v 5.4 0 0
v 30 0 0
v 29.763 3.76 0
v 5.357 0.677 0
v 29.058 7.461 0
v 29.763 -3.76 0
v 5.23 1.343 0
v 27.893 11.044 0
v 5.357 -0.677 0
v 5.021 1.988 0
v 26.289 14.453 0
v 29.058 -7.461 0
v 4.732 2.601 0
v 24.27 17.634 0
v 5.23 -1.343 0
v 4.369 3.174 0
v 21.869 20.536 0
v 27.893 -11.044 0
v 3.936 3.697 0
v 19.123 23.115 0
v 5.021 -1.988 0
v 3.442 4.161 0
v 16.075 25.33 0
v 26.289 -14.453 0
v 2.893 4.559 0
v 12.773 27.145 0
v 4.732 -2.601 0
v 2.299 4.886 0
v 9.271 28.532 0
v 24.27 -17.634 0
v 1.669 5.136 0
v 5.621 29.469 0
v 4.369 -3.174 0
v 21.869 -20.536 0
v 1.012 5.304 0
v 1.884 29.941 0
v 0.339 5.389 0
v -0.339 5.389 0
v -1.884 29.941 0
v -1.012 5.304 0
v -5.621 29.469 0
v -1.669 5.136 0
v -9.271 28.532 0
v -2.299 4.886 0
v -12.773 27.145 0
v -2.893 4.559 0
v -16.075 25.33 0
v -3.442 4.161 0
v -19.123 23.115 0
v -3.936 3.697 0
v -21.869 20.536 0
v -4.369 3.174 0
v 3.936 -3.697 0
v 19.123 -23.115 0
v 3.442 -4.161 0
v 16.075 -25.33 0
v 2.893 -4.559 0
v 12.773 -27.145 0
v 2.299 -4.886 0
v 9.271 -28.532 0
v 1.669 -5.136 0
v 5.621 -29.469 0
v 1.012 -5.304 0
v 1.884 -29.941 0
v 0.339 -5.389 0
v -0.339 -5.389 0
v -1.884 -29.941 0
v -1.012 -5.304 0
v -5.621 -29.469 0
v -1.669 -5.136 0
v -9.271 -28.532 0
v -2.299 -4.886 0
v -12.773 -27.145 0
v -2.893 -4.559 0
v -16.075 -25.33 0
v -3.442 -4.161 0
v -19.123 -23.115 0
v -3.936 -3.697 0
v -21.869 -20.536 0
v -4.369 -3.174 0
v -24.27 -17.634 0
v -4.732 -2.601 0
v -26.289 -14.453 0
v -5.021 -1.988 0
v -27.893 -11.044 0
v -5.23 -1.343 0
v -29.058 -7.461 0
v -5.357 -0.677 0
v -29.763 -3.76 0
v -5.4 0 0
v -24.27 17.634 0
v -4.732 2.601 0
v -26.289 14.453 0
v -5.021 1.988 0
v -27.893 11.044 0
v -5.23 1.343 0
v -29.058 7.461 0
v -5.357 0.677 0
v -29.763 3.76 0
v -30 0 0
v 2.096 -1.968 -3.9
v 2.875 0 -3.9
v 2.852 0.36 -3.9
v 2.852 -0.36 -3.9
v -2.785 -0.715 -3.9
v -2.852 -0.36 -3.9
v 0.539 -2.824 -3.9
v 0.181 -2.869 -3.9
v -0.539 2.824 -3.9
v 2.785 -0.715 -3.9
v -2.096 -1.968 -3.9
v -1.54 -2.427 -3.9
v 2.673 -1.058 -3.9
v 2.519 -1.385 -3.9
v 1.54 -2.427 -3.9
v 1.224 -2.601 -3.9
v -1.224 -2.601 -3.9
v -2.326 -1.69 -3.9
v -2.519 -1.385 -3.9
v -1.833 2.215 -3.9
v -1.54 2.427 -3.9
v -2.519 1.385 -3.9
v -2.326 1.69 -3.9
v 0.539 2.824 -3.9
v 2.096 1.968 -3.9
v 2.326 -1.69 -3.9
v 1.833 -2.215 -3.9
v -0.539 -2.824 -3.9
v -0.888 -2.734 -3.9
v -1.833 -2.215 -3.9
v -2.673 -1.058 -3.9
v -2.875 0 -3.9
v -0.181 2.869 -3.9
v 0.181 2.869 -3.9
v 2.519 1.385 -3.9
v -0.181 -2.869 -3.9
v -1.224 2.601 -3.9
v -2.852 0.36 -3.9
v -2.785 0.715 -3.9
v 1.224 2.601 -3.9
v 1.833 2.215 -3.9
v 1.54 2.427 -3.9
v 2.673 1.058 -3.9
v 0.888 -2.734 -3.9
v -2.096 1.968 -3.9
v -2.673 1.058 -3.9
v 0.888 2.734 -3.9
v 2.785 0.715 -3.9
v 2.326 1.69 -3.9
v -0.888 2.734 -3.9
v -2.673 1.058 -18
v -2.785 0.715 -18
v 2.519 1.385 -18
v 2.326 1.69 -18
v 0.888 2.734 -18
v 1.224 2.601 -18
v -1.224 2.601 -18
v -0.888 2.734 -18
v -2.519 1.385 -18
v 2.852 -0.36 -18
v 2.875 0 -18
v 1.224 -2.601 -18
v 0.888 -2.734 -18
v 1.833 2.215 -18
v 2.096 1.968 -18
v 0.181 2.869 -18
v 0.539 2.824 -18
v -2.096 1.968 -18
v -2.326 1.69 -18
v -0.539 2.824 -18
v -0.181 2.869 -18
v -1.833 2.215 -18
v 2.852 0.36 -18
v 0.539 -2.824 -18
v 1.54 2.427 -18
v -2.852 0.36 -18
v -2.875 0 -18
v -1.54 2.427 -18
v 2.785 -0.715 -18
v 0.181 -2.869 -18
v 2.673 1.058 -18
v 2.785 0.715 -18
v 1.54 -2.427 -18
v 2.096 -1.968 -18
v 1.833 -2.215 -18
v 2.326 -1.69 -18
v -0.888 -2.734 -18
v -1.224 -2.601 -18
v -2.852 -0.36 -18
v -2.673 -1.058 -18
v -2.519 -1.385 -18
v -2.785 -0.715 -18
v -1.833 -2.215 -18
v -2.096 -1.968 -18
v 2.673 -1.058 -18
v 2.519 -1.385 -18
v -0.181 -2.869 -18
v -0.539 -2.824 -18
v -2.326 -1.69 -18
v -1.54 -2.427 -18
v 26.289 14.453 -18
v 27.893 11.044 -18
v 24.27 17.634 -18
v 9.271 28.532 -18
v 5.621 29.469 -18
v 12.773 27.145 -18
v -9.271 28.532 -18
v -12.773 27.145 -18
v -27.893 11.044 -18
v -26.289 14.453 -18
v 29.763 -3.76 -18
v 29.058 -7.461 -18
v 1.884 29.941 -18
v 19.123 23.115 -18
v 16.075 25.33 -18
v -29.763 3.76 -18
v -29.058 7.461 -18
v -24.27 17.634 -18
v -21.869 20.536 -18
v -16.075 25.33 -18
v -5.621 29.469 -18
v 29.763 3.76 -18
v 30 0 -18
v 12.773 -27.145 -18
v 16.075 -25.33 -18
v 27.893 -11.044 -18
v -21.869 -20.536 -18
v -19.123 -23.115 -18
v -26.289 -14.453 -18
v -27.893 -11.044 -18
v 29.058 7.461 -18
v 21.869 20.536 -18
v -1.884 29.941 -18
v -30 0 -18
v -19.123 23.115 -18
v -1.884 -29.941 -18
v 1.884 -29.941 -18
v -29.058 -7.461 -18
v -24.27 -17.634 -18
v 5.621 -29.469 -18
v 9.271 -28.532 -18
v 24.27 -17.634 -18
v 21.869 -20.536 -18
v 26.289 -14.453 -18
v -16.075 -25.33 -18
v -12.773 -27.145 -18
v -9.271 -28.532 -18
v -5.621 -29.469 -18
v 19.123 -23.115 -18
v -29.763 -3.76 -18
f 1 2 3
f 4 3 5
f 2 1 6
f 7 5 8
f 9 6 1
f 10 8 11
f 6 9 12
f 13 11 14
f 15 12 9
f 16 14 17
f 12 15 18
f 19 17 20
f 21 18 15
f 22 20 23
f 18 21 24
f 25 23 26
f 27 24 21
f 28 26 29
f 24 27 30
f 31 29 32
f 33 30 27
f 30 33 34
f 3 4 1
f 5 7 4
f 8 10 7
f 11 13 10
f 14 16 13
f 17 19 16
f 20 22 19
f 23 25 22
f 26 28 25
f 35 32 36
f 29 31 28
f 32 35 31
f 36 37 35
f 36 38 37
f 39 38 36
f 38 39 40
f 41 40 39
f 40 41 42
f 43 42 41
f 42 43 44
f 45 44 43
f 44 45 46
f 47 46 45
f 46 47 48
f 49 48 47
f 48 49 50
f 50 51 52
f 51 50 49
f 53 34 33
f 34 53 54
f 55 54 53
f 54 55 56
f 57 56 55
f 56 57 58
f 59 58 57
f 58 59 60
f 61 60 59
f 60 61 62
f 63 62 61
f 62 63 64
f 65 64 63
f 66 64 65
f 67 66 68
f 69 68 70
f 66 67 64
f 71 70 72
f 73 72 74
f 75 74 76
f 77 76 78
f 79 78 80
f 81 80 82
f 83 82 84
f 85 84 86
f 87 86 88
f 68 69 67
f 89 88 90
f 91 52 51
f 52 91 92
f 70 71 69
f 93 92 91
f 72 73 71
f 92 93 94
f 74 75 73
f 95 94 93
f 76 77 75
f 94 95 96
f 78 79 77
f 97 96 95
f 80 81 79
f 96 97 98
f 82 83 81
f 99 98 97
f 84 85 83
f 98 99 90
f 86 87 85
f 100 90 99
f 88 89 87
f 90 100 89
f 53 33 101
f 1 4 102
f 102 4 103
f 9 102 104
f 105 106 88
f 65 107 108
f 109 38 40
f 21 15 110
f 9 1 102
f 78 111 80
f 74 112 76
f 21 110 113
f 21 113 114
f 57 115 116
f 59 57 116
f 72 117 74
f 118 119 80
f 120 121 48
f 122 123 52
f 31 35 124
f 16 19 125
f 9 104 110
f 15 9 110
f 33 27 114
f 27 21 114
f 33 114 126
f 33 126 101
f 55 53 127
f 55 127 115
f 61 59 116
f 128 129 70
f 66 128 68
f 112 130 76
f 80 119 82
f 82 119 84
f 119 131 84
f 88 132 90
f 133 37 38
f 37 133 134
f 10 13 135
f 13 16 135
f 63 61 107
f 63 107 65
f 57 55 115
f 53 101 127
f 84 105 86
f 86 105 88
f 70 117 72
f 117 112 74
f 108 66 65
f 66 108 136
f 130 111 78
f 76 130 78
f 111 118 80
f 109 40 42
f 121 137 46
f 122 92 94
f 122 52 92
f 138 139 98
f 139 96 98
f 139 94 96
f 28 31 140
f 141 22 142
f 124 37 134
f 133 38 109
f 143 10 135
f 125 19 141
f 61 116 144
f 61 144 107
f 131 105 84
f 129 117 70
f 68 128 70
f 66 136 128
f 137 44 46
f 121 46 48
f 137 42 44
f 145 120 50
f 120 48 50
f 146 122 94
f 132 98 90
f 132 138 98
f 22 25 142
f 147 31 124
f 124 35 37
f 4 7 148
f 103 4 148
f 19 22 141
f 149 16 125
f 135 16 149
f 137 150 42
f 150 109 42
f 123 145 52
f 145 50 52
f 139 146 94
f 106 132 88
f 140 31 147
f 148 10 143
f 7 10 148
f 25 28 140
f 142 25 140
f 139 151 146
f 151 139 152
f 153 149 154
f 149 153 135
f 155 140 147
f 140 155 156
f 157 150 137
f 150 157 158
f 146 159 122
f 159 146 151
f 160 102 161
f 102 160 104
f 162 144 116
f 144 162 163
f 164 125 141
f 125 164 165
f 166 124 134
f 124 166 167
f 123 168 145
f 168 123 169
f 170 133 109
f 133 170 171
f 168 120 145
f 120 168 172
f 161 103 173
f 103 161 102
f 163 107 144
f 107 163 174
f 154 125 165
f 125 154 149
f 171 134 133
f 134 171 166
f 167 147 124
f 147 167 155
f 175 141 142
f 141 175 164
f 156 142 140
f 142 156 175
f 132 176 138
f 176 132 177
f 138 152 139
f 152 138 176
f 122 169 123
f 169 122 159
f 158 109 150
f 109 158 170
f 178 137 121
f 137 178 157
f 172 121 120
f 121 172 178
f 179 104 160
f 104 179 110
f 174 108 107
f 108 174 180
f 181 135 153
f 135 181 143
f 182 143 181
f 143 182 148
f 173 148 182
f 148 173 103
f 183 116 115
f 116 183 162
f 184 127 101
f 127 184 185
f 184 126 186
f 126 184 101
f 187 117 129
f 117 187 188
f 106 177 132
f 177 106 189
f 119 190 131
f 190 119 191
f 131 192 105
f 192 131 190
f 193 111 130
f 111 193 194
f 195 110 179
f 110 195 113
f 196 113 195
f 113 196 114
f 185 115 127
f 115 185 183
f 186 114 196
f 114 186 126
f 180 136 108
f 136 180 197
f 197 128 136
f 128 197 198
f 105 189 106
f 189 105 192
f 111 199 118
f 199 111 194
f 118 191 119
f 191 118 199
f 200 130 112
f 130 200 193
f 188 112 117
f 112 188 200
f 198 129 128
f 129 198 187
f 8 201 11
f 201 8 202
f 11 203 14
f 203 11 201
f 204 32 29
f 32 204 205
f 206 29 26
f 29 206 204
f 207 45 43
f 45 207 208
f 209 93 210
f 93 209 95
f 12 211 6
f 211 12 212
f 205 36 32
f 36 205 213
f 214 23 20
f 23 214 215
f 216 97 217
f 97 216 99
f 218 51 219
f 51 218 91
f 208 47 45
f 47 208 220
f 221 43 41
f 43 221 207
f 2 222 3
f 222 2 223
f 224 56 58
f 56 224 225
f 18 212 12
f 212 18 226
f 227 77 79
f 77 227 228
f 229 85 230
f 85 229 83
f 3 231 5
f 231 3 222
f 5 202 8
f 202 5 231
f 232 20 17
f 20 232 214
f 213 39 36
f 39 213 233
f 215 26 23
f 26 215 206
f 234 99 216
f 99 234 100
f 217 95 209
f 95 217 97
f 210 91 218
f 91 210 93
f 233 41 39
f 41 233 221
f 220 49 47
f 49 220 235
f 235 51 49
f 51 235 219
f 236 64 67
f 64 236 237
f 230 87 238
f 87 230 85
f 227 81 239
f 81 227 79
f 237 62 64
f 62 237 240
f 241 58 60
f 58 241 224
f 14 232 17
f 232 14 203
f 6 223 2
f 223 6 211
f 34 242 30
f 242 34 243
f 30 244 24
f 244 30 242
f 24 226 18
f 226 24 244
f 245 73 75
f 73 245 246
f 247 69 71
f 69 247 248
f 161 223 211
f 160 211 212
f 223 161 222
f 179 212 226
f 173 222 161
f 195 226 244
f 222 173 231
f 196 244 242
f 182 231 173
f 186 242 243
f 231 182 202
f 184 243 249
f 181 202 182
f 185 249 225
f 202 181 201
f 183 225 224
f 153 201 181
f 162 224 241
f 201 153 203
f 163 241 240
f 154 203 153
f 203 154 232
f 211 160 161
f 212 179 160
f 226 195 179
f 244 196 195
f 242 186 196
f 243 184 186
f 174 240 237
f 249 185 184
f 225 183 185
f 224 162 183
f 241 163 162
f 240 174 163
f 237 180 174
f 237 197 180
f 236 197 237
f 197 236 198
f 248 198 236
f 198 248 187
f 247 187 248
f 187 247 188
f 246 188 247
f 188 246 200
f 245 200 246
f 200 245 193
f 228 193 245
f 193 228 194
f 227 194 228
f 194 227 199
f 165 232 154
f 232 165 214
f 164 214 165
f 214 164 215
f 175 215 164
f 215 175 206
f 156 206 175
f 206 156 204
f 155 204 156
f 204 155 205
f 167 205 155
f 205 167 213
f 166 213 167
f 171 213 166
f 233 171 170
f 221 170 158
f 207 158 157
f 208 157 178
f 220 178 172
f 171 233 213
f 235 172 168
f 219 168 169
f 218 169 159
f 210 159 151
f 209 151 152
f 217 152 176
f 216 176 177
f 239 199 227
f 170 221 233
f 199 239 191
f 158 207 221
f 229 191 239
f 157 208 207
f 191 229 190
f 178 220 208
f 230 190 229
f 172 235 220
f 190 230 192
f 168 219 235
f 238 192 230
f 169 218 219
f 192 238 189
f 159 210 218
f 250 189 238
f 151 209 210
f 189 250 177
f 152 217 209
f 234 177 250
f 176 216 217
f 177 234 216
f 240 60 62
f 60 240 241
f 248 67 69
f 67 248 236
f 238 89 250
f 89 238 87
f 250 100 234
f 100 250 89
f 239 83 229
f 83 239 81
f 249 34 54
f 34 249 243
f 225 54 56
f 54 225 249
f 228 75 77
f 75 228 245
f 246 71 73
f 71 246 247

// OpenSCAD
$fn = 50;

difference() {
	union() {
		translate(v = [0, 0, -18.0]) {
			cylinder(h = 18, r = 30.0);
		}
	}
	union() {
		translate(v = [0, 0, 0]) {
			rotate(a = [0, 0, 0]) {
				difference() {
					union() {
						translate(v = [0, 0, -21.0]) {
							cylinder(h = 21, r = 2.6);
						}
						translate(v = [0, 0, -3.9]) {
							cylinder(h = 3.9, r1 = 2.875, r2 = 5.4);
						}
						translate(v = [0, 0, -21.0]) {
							cylinder(h = 21, r = 2.875);
						}
						translate(v = [0, 0, -21.0]) {
							cylinder(h = 21, r = 2.6);
						}
					}
					union();
				}
			}
		}
	}
}
